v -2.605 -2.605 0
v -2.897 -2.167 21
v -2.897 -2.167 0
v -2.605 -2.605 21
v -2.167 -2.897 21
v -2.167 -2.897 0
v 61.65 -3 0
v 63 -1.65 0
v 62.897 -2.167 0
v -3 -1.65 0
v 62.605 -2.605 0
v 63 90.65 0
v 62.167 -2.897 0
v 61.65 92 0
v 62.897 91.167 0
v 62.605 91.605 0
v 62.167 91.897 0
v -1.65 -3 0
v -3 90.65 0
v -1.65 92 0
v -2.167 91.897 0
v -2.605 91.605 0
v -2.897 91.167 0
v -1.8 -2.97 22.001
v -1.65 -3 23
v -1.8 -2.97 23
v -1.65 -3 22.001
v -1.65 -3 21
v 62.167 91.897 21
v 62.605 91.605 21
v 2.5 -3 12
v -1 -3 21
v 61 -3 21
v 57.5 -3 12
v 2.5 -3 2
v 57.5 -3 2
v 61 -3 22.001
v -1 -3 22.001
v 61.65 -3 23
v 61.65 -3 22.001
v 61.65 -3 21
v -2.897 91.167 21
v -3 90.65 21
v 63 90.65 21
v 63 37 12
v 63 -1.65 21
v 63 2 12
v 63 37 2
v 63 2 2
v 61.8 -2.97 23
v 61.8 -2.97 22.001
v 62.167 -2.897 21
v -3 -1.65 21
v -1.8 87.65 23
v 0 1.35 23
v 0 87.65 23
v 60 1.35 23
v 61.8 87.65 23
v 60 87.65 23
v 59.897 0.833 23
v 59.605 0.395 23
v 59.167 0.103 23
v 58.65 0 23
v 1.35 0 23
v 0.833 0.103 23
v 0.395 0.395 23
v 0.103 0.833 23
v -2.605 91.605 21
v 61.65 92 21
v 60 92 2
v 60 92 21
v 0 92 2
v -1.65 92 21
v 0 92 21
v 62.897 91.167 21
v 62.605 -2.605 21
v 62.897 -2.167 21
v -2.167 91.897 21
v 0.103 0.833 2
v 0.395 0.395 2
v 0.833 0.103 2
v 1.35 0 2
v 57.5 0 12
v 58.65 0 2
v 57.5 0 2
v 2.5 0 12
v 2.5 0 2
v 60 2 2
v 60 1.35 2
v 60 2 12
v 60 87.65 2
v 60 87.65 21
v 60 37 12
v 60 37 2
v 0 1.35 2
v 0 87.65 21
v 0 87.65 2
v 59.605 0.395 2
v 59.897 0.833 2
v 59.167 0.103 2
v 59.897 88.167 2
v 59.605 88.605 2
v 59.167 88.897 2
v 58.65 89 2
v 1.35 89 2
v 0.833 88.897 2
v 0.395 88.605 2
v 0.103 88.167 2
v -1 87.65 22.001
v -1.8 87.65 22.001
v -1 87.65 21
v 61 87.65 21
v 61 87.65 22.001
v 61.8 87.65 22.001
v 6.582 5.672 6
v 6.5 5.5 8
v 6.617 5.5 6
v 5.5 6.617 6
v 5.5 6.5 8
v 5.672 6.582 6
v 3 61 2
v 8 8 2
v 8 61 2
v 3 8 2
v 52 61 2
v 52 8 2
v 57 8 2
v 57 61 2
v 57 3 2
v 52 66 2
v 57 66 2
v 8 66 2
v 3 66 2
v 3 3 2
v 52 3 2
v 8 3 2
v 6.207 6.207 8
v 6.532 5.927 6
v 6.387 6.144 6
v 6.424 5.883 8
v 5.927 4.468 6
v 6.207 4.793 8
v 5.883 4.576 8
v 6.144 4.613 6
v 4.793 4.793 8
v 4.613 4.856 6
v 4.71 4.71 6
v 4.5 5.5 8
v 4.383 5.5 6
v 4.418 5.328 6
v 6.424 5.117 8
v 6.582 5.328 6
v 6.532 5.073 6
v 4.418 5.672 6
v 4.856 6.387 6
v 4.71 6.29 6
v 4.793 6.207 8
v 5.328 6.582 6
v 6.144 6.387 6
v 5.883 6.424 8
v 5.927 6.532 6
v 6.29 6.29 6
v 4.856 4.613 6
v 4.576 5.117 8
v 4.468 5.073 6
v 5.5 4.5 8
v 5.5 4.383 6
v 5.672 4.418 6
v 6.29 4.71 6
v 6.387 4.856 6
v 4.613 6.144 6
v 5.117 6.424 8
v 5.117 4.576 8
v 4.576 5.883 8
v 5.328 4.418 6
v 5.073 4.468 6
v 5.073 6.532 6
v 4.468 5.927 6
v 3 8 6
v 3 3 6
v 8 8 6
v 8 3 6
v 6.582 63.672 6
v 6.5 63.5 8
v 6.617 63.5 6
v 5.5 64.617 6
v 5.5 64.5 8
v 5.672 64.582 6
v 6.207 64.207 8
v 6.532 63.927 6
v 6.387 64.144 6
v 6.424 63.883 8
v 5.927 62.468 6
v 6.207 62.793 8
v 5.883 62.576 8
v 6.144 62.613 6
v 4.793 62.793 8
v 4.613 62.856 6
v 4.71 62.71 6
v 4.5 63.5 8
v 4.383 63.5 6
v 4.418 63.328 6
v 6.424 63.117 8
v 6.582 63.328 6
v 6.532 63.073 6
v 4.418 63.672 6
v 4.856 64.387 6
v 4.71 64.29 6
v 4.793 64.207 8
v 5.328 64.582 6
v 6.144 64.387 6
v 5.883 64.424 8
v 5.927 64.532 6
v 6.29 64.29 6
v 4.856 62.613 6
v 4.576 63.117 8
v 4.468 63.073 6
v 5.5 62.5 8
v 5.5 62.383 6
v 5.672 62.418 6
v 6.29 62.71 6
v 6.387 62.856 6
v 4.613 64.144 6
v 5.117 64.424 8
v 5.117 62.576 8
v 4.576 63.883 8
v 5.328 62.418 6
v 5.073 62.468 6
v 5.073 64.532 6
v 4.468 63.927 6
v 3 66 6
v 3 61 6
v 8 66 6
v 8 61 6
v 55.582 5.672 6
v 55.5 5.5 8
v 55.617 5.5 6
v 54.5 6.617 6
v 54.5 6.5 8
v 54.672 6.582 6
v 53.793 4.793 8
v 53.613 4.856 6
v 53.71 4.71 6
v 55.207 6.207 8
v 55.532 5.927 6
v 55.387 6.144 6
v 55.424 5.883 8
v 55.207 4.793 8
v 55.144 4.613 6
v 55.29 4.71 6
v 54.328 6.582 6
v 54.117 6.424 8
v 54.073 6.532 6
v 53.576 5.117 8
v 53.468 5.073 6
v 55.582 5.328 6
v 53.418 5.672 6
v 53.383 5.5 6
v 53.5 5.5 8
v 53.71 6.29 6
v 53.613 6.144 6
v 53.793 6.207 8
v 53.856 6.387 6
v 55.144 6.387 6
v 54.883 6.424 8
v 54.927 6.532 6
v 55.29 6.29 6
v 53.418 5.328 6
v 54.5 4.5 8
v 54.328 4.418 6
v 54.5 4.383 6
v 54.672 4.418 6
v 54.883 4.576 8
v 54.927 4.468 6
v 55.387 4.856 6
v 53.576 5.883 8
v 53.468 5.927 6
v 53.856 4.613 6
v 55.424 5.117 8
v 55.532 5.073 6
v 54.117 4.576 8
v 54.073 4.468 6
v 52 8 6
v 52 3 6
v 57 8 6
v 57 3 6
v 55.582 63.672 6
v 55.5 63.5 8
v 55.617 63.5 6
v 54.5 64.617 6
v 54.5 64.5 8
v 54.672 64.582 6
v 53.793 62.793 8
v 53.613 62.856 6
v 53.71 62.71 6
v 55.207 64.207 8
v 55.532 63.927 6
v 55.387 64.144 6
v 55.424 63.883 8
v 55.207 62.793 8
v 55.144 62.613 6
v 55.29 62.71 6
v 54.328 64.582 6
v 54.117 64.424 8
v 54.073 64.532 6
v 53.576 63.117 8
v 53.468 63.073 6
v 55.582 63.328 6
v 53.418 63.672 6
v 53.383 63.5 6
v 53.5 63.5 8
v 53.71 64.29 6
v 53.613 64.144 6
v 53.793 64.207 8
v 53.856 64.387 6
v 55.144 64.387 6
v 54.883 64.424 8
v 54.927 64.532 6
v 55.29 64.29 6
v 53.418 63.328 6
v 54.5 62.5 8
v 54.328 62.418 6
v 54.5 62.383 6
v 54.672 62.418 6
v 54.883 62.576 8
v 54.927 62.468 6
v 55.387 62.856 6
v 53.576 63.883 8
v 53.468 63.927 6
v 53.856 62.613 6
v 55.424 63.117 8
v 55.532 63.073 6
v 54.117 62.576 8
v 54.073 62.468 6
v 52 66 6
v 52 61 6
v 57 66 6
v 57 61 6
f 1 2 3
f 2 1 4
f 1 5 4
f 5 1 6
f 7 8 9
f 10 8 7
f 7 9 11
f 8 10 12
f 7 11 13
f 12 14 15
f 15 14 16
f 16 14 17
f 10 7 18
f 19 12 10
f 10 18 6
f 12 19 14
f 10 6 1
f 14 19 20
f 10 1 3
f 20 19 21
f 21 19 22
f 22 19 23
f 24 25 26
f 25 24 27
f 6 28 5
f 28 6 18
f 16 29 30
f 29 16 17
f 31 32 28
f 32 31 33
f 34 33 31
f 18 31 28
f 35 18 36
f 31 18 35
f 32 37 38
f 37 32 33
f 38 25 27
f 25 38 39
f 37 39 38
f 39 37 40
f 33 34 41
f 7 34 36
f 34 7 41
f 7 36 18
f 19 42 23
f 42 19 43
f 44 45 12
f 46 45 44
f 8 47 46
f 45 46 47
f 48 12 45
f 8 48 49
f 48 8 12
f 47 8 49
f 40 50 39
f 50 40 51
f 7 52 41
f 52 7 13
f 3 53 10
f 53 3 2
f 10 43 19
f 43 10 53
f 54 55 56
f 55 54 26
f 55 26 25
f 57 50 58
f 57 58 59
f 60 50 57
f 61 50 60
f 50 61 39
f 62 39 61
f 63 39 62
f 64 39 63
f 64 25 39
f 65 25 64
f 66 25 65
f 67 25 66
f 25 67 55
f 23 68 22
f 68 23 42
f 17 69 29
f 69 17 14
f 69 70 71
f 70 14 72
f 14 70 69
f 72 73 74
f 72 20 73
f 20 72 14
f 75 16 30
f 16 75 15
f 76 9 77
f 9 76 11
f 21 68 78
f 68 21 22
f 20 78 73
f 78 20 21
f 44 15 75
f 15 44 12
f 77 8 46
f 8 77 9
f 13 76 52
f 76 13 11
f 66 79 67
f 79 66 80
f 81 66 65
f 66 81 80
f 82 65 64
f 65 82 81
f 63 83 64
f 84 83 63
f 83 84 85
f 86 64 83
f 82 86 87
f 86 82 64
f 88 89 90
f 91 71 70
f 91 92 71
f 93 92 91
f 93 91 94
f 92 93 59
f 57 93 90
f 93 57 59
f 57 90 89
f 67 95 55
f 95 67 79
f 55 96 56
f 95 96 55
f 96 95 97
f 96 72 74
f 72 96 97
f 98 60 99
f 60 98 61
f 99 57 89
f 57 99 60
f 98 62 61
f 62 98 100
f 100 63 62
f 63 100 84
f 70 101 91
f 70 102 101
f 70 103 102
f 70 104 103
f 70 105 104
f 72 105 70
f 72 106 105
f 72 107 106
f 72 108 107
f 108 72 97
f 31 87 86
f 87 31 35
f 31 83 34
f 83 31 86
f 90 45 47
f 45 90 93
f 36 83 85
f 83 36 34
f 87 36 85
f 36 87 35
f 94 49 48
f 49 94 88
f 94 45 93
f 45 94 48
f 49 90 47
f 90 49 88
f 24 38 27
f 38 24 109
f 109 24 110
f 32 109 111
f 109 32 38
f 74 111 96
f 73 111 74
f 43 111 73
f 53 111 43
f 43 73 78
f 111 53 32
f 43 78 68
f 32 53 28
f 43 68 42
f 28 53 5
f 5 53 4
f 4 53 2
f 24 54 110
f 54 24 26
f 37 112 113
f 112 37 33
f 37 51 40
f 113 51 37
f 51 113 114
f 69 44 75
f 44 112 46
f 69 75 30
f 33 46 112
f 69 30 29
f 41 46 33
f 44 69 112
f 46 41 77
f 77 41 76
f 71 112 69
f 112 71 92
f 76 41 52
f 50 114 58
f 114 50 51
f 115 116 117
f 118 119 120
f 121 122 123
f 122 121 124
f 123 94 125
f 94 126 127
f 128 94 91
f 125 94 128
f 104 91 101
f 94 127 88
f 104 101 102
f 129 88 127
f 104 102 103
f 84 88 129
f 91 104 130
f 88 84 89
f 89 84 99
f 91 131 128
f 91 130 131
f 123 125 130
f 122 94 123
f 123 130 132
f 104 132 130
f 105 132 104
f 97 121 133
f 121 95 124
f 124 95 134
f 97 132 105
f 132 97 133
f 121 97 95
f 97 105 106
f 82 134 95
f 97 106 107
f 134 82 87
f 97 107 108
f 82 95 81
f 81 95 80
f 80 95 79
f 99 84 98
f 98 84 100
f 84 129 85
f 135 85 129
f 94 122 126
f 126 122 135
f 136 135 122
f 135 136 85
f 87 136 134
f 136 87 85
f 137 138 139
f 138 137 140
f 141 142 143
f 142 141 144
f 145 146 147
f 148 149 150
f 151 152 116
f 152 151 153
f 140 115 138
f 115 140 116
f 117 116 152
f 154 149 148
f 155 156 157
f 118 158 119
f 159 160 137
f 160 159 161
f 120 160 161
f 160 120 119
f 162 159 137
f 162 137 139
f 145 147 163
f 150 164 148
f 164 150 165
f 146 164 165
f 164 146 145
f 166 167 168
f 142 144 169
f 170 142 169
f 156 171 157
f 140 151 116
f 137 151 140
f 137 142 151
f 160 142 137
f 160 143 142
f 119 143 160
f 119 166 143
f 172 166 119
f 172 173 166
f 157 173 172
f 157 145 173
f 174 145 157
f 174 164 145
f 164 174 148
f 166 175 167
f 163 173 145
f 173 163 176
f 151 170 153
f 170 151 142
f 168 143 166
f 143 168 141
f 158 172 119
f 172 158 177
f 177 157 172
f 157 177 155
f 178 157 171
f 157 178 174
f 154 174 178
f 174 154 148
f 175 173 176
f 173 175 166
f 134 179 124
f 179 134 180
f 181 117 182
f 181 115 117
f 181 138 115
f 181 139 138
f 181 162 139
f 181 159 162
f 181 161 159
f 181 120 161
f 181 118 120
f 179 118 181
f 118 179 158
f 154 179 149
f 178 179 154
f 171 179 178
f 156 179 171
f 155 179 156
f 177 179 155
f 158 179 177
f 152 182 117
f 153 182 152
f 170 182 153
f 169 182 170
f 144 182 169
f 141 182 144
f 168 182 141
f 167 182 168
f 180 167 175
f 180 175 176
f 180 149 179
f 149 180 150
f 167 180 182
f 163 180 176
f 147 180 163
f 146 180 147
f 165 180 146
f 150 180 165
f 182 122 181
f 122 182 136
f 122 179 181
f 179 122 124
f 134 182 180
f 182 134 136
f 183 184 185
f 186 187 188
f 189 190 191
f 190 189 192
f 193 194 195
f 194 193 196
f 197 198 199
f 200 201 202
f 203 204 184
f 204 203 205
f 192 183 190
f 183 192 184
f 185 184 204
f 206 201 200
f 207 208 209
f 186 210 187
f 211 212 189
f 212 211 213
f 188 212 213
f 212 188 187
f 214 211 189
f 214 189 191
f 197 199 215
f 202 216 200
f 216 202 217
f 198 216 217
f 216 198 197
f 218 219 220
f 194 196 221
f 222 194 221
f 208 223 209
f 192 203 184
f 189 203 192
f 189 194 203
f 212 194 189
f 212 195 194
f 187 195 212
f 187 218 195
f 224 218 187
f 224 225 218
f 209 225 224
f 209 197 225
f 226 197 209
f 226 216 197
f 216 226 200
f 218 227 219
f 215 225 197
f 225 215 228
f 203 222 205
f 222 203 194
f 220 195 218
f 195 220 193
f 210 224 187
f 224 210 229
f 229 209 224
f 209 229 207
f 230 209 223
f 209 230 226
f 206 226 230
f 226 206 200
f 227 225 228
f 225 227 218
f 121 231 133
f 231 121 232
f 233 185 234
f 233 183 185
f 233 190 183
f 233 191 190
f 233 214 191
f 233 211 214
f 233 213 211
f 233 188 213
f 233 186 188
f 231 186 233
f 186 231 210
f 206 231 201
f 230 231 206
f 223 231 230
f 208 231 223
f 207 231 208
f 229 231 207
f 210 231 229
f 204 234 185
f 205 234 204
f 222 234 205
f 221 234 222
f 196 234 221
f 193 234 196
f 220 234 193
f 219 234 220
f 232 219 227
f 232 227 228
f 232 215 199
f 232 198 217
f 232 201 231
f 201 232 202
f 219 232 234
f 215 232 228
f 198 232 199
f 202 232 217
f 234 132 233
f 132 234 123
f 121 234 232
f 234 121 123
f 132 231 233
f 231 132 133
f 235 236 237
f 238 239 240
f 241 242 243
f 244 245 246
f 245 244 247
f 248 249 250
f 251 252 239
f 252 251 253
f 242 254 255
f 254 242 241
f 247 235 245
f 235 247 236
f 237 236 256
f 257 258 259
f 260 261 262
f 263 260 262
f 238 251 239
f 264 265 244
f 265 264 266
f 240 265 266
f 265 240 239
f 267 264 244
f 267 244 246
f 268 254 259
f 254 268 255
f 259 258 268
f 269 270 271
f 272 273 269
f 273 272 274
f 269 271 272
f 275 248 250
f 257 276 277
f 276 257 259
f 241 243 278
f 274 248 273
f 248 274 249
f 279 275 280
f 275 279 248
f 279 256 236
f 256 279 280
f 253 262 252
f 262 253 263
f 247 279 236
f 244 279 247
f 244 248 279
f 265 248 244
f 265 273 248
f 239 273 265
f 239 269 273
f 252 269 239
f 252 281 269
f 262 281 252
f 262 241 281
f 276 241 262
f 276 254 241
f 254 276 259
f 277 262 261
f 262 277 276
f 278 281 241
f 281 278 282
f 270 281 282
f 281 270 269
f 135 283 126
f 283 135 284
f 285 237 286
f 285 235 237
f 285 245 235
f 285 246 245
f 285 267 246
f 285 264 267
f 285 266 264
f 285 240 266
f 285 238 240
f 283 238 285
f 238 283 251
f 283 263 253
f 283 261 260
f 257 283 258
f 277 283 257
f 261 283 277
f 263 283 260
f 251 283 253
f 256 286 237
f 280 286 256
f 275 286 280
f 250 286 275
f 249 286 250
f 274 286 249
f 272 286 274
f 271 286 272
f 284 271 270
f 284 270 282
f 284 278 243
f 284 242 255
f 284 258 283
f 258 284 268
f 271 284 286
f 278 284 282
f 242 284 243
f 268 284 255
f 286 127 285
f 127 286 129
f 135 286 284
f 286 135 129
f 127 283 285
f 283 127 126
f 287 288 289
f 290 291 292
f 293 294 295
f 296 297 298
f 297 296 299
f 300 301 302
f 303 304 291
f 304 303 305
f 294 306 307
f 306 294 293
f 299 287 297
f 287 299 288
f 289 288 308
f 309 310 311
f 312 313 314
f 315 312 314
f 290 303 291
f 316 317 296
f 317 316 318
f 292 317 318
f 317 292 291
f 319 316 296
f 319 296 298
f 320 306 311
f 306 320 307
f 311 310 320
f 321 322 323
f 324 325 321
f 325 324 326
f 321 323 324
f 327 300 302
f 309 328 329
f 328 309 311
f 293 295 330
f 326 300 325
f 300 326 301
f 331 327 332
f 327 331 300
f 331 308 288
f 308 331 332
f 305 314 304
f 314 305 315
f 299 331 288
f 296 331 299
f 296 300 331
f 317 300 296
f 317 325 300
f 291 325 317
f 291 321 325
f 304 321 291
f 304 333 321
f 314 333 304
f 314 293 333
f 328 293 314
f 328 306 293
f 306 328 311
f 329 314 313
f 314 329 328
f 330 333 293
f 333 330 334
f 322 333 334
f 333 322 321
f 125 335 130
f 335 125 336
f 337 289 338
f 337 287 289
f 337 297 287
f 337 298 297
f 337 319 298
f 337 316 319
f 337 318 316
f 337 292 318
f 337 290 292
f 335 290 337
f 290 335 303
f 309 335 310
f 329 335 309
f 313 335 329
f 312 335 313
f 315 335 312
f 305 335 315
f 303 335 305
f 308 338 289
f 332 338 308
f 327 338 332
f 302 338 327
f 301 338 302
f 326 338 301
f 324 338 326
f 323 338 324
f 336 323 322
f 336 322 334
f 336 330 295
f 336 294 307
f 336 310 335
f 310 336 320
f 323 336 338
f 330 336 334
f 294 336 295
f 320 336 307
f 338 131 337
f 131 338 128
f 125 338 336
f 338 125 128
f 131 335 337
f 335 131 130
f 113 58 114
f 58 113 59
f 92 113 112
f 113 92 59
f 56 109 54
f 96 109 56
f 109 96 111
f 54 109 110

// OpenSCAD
// file: const.scad
ptA = [1.35, 1.35];
ptB = [58.65, 1.35];
ptD = [1.35, 87.65];
ptC = [58.65, 87.65];
r1 = 1.35;

d1 = 3;  // 枠の厚み
h1 = 23;  // 枠の高さ

d2 = 2;  // 底面の厚み

h3 = 4;  // 蓋の高さ

d4_min = d1 / 3;
d4_mid = 2 * d1 / 3;

d4_dent = 1;
h4_protrusion = 1;
h4_dent = h1 - d4_dent - h4_protrusion;
// main file
include <const.scad>

difference() {
	union() {
		difference() {
			difference() {
				difference() {  // 枠
					linear_extrude(height = h1) {  // 枠外側
						hull() {
							translate(v = [ptA[0] - d1, ptA[1] - d1]) {
								circle($fn = 16, r = r1);
							}
							translate(v = [ptB[0] + d1, ptB[1] - d1]) {
								circle($fn = 16, r = r1);
							}
							translate(v = [ptC[0] + d1, ptC[1] + d1]) {
								circle($fn = 16, r = r1);
							}
							translate(v = [ptD[0] - d1, ptD[1] + d1]) {
								circle($fn = 16, r = r1);
							}
						}
					}
					translate([0, 0, -0.5]) {
						linear_extrude(height = h1 + 1) {  // 枠内側
							hull() {
								translate(v = ptA) {
									circle($fn = 16, r = r1);
								}
								translate(v = ptB) {
									circle($fn = 16, r = r1);
								}
								translate(v = ptC) {
									circle($fn = 16, r = r1);
								}
								translate(v = ptD) {
									circle($fn = 16, r = r1);
								}
							}
						}
					}
				}
				union() {  // 穴
					translate([0, 50, 2]) {
						cube([60, 50, 30]);  // 穴USB部分
					}
					translate([2.5, -10, 2]) {
						cube([55, 15, 10]);  // 穴SD部分
					}
					translate([50, 2, 2]) {
						cube([20, 35, 10]);  // 穴HDMI部分
					}
				}
			}
			color([0, 0, 1]) union() {
				temp = 4;
				translate([ptA[0] - r1 -d4_min - temp, -5, h4_dent]) {
					cube( [temp, 100, d4_dent + 0.001]);
				}
				translate([ptA[0] - r1 -d4_mid - temp + 0.2, -5, h4_dent + h4_protrusion]) {
					cube([temp, 100, h4_protrusion + 0.001]);
				}

				translate([ptB[0] + r1 + d4_min, -5, h4_dent]) {
					cube([temp, 100, d4_dent + 0.001]);
				}
				translate([ptB[0] + r1 + d4_mid - 0.2, -5, h4_dent + h4_protrusion]) {
					cube([temp, 100, h4_protrusion + 0.001]);
				}
			}
		}
		linear_extrude(height = d2) {  // 底面
			hull() {
				translate(v = ptA) {
					circle($fn = 16, r = r1);
				}
				translate(v = ptB) {
					circle($fn = 16, r = r1);
				}
				translate(v = ptC) {
					circle($fn = 16, r = r1);
				}
				translate(v = ptD) {
					circle($fn = 16, r = r1);
				}
			}
		}
		union () {  // 足
			translate(v = [5.50, 5.50, 2.00]) {
				cylinder($fn = 16, center = false, h = 6.00, r1 = r1, r2 = 1);
				translate([0, 0, 2]) {
					cube([5, 5, 4], center = true);
				}
			}
			translate(v = [5.50, 63.50, 2.00]) {
				cylinder($fn = 16, center = false, h = 6.00, r1 = r1, r2 = 1);
				translate([0, 0, 2]) {
					cube([5, 5, 4], center = true);
				}
			}
			translate(v = [54.50, 5.50, 2.00]) {
				cylinder($fn = 16, center = false, h = 6.00, r1 = r1, r2 = 1);
				translate([0, 0, 2]) {
					cube([5, 5, 4], center = true);
				}
			}
			translate(v = [54.50, 63.50, 2.00]) {
				cylinder($fn = 16, center = false, h = 6.00, r1 = r1, r2 = 1);
				translate([0, 0, 2]) {
					cube([5, 5, 4], center = true);
				}
			}
		}
	}
	union() {  // ケースと蓋のつっかかり部分. ケース側
		translate([ptC[0], ptC[1], h4_dent]) {
			cube([5, 5, 4]);  // 底面
		}
		translate([ptD[0]-5, ptD[1], h4_dent]) {
			cube([5, 5, 4]);  // 蓋
		}
	}
}
